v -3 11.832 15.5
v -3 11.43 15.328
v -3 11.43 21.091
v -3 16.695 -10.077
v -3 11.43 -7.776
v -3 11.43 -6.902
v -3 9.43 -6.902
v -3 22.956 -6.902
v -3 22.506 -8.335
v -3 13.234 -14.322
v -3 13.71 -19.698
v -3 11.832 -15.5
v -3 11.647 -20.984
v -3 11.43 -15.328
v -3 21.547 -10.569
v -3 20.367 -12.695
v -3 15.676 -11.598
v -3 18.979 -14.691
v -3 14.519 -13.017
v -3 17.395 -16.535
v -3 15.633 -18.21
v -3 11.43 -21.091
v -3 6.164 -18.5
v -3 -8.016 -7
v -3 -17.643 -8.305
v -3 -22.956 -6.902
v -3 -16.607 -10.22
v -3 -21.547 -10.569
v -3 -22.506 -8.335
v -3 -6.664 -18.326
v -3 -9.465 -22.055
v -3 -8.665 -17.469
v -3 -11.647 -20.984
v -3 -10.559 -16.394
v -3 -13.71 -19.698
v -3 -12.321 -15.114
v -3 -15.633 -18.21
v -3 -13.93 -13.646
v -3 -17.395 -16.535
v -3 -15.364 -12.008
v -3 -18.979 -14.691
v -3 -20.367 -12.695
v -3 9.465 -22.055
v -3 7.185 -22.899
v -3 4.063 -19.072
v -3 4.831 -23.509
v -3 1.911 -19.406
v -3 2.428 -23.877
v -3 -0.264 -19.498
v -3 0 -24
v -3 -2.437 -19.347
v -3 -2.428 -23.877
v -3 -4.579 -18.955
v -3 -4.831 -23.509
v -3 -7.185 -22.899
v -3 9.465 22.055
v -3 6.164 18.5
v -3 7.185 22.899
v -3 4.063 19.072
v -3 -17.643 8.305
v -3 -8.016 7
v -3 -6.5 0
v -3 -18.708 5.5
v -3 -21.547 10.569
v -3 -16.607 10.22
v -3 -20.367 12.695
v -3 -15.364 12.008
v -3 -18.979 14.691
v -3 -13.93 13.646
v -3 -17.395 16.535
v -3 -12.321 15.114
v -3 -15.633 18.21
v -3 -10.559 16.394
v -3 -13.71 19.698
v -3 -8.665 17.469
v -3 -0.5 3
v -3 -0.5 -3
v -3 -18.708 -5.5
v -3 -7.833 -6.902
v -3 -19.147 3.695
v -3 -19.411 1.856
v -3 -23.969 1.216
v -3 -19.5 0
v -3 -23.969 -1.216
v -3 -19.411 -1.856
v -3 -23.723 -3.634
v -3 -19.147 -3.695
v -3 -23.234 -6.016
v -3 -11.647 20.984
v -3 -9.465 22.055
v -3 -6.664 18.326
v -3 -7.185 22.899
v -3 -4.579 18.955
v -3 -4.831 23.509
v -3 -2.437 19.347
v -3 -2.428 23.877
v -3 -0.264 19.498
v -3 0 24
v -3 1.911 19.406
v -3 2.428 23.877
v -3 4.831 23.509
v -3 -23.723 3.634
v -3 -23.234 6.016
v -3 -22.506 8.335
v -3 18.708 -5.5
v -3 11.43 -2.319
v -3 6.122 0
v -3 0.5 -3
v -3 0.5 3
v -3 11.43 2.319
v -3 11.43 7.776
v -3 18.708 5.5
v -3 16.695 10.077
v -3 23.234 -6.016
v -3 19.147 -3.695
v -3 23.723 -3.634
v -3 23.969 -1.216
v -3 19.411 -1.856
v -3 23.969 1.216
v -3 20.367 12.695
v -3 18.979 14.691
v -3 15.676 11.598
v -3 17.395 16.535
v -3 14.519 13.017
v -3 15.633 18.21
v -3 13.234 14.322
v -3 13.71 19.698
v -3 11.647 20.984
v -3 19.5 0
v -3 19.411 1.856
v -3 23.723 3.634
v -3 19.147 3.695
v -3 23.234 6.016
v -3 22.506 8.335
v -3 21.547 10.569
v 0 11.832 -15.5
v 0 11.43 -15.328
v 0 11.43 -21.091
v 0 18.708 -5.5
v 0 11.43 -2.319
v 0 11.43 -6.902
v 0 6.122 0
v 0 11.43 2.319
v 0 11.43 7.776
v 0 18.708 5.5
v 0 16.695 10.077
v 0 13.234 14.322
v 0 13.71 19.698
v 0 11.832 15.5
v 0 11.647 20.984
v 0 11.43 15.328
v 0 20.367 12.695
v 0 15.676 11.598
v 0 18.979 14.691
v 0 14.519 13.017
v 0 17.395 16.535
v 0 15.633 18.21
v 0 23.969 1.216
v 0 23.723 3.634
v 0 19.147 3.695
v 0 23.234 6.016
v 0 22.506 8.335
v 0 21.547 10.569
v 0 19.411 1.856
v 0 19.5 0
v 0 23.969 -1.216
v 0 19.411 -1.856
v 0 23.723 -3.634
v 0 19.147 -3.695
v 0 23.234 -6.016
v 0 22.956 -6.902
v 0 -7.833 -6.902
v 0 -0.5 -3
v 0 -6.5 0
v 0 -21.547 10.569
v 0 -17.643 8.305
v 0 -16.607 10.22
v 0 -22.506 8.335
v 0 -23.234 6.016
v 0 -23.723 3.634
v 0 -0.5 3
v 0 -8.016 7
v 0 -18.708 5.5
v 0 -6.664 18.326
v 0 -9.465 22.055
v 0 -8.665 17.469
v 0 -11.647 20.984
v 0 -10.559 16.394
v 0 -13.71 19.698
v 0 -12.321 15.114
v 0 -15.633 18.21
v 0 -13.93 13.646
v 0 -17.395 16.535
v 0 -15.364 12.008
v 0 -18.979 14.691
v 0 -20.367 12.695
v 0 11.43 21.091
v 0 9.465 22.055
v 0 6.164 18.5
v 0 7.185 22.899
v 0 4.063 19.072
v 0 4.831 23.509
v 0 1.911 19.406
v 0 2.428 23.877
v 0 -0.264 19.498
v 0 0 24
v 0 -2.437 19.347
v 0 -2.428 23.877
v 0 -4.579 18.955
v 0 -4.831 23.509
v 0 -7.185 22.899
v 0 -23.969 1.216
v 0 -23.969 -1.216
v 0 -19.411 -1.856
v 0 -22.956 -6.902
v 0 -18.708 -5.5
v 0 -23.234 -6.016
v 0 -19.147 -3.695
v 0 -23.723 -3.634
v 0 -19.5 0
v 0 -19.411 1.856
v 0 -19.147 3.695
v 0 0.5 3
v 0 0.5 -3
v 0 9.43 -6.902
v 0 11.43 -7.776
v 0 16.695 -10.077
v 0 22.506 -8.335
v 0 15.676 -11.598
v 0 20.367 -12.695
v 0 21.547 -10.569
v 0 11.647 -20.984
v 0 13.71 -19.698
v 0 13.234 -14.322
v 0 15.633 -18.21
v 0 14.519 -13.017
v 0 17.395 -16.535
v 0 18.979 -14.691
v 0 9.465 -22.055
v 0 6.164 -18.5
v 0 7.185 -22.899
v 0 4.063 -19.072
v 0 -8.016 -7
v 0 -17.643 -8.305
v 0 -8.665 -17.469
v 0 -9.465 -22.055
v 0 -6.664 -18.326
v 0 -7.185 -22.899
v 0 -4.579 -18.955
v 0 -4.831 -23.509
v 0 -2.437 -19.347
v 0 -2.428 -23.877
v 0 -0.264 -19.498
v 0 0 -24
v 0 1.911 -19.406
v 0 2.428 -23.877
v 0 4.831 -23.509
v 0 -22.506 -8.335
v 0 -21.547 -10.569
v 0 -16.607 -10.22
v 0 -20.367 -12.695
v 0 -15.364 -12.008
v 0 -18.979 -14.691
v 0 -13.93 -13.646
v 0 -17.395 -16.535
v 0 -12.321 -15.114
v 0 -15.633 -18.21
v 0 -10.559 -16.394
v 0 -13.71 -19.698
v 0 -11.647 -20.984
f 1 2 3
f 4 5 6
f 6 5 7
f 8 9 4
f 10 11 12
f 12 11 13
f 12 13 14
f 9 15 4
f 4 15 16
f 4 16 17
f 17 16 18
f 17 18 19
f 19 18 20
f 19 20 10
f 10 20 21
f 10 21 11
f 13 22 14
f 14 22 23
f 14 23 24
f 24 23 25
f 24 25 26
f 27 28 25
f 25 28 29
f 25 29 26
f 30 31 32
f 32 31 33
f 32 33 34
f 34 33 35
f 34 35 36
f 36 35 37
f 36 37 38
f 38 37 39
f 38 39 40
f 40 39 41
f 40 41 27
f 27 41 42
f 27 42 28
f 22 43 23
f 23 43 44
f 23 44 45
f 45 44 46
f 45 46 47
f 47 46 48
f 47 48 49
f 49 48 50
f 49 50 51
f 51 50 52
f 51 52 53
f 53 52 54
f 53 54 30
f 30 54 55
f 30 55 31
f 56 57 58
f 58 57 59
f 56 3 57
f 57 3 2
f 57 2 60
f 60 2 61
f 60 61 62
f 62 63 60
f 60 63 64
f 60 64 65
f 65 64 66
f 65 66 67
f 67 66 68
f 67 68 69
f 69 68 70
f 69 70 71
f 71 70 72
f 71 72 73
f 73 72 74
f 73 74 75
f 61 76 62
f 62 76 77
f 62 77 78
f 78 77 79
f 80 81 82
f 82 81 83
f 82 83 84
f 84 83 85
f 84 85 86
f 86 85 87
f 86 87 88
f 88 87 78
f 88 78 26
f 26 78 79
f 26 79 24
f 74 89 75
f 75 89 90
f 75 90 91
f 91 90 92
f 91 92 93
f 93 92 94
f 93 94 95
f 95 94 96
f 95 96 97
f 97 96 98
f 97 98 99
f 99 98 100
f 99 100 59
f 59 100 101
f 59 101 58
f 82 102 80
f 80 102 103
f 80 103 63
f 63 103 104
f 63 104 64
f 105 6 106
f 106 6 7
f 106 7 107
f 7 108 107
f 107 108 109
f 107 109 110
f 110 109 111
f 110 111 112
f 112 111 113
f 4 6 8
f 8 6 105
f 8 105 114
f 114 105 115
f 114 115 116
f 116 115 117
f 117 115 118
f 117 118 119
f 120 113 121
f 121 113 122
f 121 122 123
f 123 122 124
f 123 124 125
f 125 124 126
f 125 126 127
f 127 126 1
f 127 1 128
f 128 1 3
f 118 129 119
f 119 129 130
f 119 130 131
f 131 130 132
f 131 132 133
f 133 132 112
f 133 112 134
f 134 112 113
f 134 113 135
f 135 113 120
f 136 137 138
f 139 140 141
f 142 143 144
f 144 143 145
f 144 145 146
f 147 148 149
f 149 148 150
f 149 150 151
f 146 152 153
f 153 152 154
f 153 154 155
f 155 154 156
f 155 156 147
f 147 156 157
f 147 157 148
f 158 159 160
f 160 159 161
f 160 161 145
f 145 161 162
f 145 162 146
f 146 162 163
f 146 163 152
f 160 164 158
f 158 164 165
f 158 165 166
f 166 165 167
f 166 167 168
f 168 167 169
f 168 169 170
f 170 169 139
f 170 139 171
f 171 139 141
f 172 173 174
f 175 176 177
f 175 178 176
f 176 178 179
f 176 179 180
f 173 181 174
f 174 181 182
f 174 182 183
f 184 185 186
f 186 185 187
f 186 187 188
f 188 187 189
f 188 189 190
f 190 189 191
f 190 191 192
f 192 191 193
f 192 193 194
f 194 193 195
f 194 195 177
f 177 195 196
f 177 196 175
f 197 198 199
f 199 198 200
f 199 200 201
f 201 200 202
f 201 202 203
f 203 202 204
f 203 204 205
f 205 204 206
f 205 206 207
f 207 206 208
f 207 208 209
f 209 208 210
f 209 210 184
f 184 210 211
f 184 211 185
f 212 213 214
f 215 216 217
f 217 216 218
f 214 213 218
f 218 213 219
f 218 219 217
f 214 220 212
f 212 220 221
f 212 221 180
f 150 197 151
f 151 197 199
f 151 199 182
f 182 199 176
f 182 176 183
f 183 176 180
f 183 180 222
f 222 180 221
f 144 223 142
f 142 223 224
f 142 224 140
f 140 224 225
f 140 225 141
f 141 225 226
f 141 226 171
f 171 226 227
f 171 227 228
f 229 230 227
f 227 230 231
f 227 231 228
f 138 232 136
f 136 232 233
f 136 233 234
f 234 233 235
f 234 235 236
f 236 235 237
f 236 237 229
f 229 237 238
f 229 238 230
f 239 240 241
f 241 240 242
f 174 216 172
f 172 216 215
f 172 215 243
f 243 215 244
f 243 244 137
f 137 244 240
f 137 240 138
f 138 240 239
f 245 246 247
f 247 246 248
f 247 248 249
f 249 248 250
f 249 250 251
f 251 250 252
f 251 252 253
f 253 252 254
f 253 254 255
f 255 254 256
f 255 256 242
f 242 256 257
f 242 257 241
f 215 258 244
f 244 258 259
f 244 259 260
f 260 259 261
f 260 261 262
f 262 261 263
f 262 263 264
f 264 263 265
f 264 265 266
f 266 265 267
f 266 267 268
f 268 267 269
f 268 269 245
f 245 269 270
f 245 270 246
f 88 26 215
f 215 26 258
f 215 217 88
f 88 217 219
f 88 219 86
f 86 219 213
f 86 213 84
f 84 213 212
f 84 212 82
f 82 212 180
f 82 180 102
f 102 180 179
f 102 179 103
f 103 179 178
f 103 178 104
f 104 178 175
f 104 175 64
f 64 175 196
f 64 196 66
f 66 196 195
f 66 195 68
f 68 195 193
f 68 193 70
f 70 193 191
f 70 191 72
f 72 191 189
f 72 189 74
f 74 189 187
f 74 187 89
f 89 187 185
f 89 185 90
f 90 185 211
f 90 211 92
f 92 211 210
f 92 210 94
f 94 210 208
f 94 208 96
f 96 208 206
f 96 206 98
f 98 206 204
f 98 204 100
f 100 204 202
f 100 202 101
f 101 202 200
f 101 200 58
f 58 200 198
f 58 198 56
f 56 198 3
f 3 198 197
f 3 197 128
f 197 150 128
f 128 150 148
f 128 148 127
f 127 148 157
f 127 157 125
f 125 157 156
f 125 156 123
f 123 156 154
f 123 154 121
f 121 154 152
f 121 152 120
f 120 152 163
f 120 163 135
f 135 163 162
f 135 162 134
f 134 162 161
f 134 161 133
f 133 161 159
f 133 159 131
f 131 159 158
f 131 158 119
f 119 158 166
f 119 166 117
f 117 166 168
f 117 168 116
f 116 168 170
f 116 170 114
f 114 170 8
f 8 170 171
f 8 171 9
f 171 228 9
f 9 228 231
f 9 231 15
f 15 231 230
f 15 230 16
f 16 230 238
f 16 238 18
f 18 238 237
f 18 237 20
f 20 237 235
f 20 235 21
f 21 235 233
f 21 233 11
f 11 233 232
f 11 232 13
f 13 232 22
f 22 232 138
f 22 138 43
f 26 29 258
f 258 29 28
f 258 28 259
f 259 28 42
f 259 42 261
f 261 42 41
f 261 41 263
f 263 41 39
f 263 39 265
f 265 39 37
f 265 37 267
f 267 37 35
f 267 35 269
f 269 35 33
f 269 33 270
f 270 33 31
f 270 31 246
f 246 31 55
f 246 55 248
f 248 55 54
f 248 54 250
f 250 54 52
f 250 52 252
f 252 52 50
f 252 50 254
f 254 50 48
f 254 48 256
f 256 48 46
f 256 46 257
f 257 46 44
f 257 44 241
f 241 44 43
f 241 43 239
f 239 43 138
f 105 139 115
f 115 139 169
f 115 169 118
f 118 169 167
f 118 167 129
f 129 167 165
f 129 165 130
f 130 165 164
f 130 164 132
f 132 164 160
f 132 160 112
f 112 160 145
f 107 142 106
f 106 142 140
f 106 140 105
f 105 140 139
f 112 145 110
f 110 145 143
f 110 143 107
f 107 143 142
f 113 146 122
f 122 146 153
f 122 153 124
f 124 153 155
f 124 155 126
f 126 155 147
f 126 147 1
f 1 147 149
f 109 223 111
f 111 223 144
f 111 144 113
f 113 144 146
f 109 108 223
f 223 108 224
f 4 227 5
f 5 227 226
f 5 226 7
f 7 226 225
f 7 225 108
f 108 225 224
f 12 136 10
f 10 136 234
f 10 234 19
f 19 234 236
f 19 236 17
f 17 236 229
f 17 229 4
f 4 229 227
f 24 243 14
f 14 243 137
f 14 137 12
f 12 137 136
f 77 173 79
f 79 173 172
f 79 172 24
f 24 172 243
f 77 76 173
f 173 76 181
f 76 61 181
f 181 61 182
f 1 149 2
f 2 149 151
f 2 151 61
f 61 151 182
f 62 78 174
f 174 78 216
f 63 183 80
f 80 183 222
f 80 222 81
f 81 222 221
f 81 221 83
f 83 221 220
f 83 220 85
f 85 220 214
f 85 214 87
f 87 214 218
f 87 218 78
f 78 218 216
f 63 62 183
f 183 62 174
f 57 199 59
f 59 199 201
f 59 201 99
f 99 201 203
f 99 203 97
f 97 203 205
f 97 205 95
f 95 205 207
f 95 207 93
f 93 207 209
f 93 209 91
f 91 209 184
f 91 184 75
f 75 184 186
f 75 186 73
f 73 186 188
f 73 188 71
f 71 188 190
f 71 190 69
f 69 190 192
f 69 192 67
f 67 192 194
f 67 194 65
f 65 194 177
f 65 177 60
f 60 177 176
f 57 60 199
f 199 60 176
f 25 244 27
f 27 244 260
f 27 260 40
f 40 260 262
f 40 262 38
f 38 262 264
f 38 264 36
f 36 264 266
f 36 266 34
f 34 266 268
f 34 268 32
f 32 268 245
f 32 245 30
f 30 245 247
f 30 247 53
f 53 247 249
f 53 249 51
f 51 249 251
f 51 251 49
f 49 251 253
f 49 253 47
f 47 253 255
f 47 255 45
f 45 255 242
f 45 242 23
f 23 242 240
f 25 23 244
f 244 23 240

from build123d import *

# Parameters (mm, degrees)
SKETCH_5_R      = 24
EXTRUDE_1_DEPTH = 3


with BuildPart() as part:
    # Эскиз5 → Бобышка-Вытянуть1 (new body)
    with BuildSketch(Plane.ZY):
        Circle(SKETCH_5_R)
        with BuildLine():
            Line((5.5, 18.708286934), (0, 6.121683557))
            Line((0, 6.121683557), (-5.5, 18.708286934))
            ThreePointArc((-5.5, 18.708286934), (0, 19.5), (5.5, 18.708286934))
        make_face(mode=Mode.SUBTRACT)
        with BuildLine():
            Line((10.076621897, 16.694660558), (3, 0.5))
            Line((3, 0.5), (-3, 0.5))
            Line((-3, 0.5), (-10.076621897, 16.694660558))
            ThreePointArc((-10.076621897, 16.694660558), (-13.01736824, 14.518888529), (-15.5, 11.832159566))
            Line((-15.5, 11.832159566), (-7, -8.016467208))
            Line((-7, -8.016467208), (-3, -0.5))
            Line((-3, -0.5), (3, -0.5))
            Line((3, -0.5), (7, -8.016467208))
            Line((7, -8.016467208), (15.5, 11.832159566))
            ThreePointArc((15.5, 11.832159566), (13.01736824, 14.518888529), (10.076621897, 16.694660558))
        make_face(mode=Mode.SUBTRACT)
        with BuildLine():
            Line((0, -6.5), (5.5, -18.708286934))
            ThreePointArc((5.5, -18.708286934), (0, -19.5), (-5.5, -18.708286934))
            Line((-5.5, -18.708286934), (0, -6.5))
        make_face(mode=Mode.SUBTRACT)
        with BuildLine():
            Line((8.30458122, -17.64324037), (18.5, 6.164414003))
            ThreePointArc((18.5, 6.164414003), (17.925470573, -7.676425257), (8.30458122, -17.64324037))
        make_face(mode=Mode.SUBTRACT)
        with BuildLine():
            Line((-8.30458122, -17.64324037), (-18.5, 6.164414003))
            ThreePointArc((-18.5, 6.164414003), (-17.925470573, -7.676425257), (-8.30458122, -17.64324037))
        make_face(mode=Mode.SUBTRACT)
    extrude(amount=EXTRUDE_1_DEPTH)


solid = part.part
